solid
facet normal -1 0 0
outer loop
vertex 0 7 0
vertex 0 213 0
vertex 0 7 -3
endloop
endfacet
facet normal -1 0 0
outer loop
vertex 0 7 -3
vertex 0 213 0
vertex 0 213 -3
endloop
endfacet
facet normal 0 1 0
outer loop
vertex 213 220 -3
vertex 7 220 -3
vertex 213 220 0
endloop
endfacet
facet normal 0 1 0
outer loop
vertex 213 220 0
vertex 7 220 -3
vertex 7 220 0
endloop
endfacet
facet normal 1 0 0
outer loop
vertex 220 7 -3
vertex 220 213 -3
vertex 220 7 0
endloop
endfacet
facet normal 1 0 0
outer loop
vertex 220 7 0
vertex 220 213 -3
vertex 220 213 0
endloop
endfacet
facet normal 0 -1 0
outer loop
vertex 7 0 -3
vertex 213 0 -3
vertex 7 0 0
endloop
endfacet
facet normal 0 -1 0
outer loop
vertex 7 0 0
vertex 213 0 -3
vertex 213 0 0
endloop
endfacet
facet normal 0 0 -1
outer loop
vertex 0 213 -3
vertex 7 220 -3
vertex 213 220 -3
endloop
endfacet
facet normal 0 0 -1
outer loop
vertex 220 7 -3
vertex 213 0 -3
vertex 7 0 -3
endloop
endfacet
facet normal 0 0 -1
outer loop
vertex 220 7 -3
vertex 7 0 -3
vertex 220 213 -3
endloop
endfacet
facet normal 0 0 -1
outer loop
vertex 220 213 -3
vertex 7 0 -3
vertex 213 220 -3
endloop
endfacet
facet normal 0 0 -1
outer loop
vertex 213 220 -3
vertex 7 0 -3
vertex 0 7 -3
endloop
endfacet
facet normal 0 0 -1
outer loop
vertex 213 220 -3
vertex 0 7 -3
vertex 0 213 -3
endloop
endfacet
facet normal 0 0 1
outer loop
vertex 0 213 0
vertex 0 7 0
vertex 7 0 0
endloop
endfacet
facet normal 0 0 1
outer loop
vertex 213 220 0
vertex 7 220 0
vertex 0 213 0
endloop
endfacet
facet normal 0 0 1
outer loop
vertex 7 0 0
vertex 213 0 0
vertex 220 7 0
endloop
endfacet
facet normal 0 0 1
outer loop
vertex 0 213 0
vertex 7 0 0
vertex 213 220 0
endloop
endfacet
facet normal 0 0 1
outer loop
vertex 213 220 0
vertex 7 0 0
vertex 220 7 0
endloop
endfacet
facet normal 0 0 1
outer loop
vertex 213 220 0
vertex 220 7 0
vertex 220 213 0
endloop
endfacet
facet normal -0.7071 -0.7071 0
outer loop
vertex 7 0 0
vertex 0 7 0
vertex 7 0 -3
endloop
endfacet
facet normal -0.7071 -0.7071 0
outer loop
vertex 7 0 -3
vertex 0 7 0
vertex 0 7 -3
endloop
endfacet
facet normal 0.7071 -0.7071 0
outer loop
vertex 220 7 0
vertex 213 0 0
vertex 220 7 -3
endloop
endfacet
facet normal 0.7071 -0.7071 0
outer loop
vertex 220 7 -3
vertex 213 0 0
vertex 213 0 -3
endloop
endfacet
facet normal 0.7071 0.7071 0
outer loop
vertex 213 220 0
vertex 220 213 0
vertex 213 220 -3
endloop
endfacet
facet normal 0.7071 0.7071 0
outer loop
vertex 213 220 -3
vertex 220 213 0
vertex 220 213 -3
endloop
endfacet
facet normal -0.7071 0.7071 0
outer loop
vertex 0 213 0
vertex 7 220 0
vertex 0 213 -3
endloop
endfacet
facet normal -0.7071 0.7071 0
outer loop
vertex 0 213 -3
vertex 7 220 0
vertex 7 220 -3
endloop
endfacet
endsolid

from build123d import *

# Parameters (mm, degrees)
SKETCH1_W           = 220
SKETCH1_H           = 220
BOSS_EXTRUDE1_DEPTH = 3
CHAMFER1_SIZE       = 7


with BuildPart() as part:
    # Sketch1 → Boss-Extrude1 (new body)
    with BuildSketch(Plane.XY):
        with Locations((110, 110)):
            Rectangle(SKETCH1_W, SKETCH1_H)
    extrude(amount=-BOSS_EXTRUDE1_DEPTH)

    # Chamfer1
    chamfer1_edges = [part.edges().sort_by_distance(p)[0] for p in [
        (0, 220, -1.5),
        (220, 220, -1.5),
        (220, 0, -1.5),
        (0, 0, -1.5),
    ]]
    chamfer(chamfer1_edges, length=CHAMFER1_SIZE)


solid = part.part
